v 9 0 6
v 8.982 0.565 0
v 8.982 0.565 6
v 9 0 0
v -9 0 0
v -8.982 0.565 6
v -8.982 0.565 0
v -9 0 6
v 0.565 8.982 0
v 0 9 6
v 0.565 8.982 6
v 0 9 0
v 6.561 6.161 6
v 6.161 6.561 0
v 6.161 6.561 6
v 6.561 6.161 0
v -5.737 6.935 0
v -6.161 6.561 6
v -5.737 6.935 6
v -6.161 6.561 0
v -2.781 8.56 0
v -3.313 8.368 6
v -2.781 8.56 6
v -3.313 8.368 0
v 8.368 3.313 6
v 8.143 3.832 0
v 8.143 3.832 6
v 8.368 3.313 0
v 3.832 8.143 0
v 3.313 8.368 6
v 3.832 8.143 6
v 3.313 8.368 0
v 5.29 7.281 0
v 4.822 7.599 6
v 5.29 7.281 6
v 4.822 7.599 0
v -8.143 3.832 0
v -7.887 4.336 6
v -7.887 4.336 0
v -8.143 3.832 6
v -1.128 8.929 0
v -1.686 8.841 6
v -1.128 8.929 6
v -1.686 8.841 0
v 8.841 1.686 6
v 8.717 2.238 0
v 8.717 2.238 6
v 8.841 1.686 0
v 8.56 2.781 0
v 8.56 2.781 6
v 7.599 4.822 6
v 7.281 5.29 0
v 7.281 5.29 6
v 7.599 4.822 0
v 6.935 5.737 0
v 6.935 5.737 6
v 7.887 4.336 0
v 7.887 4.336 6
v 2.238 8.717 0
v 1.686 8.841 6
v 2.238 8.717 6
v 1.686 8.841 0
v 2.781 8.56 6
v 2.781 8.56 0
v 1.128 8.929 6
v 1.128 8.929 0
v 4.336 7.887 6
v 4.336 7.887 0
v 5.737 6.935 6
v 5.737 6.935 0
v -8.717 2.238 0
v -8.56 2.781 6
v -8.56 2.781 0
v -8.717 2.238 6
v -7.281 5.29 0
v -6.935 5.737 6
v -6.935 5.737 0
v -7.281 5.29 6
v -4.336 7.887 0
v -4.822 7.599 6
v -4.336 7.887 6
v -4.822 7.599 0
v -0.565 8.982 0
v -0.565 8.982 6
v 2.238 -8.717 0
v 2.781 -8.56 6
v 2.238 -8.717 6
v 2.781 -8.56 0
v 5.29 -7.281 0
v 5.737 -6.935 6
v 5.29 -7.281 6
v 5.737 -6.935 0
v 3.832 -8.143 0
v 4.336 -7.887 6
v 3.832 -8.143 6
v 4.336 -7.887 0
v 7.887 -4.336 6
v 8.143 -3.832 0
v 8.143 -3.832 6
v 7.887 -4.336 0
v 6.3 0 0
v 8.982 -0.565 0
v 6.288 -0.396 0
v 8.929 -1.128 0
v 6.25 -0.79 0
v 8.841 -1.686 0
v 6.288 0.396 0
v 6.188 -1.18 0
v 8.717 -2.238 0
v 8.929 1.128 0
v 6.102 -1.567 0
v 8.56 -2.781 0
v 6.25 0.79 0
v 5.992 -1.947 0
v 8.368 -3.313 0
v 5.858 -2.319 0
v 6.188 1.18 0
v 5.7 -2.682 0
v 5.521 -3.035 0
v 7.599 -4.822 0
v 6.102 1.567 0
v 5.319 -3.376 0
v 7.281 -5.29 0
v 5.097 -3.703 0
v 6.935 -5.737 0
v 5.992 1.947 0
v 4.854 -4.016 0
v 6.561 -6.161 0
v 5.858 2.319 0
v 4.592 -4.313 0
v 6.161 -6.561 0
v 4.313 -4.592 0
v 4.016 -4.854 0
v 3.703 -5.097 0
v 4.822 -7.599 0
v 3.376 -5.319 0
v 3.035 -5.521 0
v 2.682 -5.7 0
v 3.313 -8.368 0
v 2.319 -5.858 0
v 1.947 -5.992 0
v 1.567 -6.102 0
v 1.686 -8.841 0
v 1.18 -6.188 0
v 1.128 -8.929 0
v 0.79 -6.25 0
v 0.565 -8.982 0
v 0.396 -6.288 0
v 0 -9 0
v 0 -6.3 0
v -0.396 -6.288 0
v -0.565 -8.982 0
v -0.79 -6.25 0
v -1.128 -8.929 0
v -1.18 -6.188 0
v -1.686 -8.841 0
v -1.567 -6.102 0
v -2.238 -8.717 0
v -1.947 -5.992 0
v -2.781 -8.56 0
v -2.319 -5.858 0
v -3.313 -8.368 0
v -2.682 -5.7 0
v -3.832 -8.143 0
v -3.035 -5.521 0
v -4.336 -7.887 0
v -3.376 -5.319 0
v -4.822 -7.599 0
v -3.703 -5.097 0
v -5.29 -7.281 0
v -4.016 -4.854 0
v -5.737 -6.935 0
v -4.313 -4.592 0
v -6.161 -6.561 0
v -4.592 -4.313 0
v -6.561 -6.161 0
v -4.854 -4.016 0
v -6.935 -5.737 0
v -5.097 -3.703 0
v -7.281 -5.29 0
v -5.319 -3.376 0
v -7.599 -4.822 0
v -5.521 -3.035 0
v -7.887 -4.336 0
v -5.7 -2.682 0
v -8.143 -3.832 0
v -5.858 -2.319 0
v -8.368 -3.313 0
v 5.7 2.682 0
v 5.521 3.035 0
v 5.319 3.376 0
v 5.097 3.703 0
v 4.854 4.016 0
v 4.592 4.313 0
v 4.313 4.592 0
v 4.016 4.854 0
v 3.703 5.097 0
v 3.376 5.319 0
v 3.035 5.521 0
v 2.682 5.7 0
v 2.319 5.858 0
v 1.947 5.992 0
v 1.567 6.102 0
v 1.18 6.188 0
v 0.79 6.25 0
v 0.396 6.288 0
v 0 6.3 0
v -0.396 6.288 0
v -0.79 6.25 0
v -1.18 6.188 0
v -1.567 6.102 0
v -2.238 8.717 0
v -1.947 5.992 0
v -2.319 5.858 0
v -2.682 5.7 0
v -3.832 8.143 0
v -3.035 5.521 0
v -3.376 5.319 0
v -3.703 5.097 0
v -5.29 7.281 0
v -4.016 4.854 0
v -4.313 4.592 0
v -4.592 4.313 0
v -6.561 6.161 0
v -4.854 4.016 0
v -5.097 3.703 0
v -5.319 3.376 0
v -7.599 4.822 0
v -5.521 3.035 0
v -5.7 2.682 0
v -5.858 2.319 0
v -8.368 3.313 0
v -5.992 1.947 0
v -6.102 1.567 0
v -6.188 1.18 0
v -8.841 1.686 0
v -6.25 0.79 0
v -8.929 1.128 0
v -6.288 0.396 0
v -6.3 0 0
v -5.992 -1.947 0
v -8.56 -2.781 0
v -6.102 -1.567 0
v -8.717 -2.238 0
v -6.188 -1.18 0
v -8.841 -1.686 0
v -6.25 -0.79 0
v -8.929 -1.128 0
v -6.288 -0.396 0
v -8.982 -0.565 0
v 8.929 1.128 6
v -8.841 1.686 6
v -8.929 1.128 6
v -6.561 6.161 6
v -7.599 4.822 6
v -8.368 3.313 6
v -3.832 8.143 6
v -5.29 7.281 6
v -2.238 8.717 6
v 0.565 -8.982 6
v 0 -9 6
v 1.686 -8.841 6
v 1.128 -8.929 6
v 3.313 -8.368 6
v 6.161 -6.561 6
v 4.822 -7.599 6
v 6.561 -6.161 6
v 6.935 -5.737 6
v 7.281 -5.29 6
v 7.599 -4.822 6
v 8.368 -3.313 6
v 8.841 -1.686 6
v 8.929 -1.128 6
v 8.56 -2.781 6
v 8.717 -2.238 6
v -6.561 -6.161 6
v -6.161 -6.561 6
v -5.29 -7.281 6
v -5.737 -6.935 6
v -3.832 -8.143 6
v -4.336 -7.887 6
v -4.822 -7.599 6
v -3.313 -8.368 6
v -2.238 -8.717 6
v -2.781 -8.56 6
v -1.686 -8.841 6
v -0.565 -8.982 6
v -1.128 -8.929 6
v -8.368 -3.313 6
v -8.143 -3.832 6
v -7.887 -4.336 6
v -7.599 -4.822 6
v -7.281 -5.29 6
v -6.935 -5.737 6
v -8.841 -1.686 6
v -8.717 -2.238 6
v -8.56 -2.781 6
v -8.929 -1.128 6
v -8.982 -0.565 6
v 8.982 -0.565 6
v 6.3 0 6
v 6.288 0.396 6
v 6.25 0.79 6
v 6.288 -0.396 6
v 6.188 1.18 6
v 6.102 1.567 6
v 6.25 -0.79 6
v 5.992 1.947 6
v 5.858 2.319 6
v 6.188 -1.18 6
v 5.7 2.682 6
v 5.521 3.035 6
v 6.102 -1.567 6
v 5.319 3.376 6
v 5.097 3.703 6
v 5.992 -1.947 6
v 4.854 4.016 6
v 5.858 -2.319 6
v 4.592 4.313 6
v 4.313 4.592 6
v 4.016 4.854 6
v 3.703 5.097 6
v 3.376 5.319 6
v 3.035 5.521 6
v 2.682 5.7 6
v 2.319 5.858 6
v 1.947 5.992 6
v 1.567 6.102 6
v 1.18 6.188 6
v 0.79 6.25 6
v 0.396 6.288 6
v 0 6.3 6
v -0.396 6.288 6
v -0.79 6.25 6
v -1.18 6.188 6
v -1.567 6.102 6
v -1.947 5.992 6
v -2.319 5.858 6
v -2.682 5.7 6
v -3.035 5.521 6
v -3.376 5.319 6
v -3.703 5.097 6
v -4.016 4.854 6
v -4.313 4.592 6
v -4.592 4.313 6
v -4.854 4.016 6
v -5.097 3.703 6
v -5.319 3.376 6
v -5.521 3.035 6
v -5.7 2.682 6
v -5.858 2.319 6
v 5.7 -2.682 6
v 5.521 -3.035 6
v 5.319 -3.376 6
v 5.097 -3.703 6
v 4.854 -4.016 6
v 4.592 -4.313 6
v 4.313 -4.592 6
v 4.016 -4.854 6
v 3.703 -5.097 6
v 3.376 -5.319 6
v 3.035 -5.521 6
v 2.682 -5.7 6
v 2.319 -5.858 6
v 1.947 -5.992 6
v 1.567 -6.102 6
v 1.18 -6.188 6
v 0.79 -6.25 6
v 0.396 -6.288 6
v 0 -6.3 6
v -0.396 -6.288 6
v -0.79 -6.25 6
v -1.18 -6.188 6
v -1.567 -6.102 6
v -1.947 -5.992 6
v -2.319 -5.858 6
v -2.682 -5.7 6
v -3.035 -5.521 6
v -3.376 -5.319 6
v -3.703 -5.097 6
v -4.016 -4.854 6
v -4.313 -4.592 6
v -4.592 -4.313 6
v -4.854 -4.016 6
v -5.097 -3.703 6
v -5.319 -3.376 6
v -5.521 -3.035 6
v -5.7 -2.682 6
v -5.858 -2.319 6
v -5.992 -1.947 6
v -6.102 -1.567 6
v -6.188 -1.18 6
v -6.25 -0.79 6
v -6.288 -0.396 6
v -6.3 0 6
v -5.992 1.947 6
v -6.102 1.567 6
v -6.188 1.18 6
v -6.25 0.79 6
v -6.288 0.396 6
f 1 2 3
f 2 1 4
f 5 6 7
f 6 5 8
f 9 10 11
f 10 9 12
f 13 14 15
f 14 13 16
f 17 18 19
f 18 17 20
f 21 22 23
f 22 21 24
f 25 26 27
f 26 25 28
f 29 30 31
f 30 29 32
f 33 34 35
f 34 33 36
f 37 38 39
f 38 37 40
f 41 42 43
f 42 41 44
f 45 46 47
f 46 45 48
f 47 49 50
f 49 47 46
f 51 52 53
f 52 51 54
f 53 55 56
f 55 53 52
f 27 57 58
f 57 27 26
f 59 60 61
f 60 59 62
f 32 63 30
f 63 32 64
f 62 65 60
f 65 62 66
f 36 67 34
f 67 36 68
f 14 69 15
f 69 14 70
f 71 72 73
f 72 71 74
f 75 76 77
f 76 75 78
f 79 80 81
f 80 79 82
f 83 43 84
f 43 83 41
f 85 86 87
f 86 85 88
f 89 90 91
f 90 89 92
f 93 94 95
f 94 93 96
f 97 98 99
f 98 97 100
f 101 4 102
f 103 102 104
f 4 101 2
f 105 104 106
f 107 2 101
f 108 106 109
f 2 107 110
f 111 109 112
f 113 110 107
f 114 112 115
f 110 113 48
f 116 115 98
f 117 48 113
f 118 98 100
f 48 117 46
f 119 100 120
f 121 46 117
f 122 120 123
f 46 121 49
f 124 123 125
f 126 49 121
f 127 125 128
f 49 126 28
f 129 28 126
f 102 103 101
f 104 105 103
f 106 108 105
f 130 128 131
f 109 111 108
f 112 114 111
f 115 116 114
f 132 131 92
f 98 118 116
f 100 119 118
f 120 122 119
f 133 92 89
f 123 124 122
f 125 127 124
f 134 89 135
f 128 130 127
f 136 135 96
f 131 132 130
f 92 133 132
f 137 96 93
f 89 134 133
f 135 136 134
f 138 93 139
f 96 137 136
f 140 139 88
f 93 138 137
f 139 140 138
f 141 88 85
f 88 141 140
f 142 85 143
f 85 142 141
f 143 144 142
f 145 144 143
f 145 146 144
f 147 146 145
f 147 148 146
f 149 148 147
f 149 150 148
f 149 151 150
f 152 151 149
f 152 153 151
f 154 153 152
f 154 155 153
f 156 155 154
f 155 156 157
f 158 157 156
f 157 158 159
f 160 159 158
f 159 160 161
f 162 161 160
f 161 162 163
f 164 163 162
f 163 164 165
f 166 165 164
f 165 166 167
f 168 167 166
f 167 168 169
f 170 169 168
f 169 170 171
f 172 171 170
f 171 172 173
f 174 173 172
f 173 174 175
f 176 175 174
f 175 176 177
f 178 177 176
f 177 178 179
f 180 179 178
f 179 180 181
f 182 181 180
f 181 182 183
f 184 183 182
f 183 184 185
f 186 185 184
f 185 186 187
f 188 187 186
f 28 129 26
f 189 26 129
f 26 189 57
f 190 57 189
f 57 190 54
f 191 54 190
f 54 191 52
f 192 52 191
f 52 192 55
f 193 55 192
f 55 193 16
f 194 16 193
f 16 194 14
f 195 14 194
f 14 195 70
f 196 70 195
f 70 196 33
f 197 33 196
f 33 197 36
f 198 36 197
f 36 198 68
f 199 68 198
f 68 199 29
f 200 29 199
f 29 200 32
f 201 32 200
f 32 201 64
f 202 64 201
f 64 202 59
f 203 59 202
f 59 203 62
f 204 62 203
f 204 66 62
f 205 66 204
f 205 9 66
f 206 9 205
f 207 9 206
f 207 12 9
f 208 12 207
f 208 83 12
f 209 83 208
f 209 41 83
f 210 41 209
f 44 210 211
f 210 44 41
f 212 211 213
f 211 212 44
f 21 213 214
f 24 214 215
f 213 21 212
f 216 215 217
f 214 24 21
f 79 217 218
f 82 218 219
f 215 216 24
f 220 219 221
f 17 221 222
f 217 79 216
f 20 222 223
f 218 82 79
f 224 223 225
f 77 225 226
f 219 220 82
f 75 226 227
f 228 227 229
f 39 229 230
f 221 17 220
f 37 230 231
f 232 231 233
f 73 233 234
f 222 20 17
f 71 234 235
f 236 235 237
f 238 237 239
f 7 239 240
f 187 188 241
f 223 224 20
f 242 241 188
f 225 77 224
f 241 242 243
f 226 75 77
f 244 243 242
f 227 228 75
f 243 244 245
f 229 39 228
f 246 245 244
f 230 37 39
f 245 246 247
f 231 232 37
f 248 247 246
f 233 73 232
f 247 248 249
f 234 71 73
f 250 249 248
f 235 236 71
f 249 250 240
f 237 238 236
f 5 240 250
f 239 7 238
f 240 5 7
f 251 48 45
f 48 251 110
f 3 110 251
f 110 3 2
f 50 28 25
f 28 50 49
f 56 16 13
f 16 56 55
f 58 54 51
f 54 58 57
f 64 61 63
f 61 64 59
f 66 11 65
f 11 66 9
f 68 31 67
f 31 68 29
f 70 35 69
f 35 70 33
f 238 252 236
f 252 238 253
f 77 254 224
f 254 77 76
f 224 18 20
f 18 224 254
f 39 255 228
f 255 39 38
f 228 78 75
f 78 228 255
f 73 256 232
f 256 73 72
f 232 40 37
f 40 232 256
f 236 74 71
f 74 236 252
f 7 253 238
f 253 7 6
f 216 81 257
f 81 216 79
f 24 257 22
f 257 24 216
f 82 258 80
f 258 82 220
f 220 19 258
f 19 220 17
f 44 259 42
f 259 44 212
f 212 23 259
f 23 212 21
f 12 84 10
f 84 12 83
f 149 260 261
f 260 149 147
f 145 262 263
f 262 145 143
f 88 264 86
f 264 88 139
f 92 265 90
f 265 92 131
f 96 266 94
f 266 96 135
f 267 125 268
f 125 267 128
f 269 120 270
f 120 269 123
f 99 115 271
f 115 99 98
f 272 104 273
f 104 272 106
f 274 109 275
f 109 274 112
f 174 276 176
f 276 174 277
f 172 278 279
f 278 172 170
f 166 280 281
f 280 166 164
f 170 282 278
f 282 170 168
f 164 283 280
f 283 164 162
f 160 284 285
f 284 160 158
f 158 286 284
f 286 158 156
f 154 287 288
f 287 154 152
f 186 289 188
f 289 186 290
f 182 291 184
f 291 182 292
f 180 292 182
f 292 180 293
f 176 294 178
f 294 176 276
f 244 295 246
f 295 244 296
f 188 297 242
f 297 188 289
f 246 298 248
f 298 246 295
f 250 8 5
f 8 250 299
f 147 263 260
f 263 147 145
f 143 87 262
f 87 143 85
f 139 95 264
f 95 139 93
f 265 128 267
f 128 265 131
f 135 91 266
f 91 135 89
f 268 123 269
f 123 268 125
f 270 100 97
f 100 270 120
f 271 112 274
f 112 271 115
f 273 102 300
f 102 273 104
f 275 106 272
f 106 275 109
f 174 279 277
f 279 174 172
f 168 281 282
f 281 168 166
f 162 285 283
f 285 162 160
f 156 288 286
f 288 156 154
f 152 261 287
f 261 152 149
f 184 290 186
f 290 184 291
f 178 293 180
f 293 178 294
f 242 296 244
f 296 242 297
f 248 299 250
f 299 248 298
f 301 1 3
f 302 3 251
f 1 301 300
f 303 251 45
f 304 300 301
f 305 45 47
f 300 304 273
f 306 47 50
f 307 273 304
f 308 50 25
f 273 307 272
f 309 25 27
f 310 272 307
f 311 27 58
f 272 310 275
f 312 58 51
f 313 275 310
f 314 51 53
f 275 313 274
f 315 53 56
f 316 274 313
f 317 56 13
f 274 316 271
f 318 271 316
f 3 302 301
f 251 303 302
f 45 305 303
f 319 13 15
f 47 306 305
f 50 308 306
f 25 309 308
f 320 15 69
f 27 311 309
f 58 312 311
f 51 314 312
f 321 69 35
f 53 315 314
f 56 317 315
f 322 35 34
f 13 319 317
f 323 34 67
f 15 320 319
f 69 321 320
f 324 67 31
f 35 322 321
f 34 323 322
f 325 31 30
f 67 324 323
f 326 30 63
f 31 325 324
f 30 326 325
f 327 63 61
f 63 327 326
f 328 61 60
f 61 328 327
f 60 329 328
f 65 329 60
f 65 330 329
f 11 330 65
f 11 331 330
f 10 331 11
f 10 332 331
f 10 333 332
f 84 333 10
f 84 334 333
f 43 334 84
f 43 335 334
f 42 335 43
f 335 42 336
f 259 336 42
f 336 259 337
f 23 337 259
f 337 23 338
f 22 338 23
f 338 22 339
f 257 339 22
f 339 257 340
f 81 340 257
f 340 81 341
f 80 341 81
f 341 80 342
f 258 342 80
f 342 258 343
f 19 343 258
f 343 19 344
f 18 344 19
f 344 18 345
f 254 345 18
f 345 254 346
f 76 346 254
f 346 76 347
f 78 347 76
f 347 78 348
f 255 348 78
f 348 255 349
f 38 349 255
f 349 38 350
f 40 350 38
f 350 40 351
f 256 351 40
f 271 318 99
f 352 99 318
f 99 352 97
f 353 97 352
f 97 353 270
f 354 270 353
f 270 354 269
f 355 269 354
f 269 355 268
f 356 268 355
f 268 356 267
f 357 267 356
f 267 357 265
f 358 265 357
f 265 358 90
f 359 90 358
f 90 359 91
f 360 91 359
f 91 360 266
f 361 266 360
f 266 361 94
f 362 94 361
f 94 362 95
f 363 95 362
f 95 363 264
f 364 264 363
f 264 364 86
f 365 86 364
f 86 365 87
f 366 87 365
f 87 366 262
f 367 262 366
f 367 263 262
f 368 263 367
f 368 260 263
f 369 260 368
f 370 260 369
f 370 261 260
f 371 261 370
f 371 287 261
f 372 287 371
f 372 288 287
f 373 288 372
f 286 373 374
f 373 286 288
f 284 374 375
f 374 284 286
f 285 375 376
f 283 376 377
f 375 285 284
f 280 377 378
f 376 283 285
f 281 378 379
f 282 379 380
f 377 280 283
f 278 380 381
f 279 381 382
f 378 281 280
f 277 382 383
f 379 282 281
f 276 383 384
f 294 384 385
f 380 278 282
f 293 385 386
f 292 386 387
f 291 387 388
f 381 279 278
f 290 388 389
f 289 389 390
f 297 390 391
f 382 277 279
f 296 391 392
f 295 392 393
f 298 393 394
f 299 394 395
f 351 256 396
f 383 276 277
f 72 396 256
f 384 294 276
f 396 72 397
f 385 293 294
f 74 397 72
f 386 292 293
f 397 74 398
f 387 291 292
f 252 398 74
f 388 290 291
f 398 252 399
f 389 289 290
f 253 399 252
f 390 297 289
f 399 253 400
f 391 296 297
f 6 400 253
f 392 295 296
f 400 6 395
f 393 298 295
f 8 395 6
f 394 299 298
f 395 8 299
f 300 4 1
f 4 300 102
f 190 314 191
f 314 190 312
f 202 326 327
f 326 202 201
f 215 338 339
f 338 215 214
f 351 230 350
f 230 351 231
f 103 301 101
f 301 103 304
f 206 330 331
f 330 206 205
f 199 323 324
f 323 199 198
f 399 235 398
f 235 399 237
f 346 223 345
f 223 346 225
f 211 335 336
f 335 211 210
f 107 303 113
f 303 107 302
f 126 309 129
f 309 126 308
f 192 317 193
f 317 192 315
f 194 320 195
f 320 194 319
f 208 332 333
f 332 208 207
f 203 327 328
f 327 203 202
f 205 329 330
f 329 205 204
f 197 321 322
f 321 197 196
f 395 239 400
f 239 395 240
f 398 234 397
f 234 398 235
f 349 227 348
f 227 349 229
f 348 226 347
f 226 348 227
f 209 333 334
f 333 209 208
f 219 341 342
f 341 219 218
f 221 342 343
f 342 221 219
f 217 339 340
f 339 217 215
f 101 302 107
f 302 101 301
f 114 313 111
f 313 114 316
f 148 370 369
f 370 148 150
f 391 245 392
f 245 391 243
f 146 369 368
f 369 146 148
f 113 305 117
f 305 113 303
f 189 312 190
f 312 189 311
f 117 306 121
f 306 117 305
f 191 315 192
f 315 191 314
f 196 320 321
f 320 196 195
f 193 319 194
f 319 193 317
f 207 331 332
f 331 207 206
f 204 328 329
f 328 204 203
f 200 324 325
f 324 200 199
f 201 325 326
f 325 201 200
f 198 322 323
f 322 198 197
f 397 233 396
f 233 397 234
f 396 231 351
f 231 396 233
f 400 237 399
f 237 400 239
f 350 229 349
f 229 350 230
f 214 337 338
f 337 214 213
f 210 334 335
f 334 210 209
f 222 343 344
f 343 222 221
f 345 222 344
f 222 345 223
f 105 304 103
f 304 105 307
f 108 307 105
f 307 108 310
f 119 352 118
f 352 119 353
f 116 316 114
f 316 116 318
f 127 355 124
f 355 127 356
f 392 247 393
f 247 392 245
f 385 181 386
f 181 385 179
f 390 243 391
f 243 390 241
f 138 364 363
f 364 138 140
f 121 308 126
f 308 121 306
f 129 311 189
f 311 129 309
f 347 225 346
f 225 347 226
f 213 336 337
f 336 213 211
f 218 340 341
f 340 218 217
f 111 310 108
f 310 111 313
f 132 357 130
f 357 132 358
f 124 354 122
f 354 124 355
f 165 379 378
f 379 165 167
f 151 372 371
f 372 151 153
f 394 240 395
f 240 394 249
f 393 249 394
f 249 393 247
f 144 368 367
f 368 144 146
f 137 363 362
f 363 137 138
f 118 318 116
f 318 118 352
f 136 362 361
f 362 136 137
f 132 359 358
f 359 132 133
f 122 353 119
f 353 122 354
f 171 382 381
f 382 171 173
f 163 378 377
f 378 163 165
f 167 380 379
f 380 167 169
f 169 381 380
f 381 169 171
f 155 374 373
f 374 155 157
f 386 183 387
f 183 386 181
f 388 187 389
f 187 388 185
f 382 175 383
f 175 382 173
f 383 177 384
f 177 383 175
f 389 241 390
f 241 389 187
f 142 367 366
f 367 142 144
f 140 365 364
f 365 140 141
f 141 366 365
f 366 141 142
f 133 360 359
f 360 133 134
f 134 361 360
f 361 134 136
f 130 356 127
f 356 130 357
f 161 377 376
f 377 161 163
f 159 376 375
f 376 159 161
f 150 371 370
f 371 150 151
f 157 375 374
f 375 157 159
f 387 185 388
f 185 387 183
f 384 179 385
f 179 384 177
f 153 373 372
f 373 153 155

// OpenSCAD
$fn=100;

difference () {
  cylinder(h=6, d=18);
  cylinder(h=11, d=12.6);    
}






    
    
